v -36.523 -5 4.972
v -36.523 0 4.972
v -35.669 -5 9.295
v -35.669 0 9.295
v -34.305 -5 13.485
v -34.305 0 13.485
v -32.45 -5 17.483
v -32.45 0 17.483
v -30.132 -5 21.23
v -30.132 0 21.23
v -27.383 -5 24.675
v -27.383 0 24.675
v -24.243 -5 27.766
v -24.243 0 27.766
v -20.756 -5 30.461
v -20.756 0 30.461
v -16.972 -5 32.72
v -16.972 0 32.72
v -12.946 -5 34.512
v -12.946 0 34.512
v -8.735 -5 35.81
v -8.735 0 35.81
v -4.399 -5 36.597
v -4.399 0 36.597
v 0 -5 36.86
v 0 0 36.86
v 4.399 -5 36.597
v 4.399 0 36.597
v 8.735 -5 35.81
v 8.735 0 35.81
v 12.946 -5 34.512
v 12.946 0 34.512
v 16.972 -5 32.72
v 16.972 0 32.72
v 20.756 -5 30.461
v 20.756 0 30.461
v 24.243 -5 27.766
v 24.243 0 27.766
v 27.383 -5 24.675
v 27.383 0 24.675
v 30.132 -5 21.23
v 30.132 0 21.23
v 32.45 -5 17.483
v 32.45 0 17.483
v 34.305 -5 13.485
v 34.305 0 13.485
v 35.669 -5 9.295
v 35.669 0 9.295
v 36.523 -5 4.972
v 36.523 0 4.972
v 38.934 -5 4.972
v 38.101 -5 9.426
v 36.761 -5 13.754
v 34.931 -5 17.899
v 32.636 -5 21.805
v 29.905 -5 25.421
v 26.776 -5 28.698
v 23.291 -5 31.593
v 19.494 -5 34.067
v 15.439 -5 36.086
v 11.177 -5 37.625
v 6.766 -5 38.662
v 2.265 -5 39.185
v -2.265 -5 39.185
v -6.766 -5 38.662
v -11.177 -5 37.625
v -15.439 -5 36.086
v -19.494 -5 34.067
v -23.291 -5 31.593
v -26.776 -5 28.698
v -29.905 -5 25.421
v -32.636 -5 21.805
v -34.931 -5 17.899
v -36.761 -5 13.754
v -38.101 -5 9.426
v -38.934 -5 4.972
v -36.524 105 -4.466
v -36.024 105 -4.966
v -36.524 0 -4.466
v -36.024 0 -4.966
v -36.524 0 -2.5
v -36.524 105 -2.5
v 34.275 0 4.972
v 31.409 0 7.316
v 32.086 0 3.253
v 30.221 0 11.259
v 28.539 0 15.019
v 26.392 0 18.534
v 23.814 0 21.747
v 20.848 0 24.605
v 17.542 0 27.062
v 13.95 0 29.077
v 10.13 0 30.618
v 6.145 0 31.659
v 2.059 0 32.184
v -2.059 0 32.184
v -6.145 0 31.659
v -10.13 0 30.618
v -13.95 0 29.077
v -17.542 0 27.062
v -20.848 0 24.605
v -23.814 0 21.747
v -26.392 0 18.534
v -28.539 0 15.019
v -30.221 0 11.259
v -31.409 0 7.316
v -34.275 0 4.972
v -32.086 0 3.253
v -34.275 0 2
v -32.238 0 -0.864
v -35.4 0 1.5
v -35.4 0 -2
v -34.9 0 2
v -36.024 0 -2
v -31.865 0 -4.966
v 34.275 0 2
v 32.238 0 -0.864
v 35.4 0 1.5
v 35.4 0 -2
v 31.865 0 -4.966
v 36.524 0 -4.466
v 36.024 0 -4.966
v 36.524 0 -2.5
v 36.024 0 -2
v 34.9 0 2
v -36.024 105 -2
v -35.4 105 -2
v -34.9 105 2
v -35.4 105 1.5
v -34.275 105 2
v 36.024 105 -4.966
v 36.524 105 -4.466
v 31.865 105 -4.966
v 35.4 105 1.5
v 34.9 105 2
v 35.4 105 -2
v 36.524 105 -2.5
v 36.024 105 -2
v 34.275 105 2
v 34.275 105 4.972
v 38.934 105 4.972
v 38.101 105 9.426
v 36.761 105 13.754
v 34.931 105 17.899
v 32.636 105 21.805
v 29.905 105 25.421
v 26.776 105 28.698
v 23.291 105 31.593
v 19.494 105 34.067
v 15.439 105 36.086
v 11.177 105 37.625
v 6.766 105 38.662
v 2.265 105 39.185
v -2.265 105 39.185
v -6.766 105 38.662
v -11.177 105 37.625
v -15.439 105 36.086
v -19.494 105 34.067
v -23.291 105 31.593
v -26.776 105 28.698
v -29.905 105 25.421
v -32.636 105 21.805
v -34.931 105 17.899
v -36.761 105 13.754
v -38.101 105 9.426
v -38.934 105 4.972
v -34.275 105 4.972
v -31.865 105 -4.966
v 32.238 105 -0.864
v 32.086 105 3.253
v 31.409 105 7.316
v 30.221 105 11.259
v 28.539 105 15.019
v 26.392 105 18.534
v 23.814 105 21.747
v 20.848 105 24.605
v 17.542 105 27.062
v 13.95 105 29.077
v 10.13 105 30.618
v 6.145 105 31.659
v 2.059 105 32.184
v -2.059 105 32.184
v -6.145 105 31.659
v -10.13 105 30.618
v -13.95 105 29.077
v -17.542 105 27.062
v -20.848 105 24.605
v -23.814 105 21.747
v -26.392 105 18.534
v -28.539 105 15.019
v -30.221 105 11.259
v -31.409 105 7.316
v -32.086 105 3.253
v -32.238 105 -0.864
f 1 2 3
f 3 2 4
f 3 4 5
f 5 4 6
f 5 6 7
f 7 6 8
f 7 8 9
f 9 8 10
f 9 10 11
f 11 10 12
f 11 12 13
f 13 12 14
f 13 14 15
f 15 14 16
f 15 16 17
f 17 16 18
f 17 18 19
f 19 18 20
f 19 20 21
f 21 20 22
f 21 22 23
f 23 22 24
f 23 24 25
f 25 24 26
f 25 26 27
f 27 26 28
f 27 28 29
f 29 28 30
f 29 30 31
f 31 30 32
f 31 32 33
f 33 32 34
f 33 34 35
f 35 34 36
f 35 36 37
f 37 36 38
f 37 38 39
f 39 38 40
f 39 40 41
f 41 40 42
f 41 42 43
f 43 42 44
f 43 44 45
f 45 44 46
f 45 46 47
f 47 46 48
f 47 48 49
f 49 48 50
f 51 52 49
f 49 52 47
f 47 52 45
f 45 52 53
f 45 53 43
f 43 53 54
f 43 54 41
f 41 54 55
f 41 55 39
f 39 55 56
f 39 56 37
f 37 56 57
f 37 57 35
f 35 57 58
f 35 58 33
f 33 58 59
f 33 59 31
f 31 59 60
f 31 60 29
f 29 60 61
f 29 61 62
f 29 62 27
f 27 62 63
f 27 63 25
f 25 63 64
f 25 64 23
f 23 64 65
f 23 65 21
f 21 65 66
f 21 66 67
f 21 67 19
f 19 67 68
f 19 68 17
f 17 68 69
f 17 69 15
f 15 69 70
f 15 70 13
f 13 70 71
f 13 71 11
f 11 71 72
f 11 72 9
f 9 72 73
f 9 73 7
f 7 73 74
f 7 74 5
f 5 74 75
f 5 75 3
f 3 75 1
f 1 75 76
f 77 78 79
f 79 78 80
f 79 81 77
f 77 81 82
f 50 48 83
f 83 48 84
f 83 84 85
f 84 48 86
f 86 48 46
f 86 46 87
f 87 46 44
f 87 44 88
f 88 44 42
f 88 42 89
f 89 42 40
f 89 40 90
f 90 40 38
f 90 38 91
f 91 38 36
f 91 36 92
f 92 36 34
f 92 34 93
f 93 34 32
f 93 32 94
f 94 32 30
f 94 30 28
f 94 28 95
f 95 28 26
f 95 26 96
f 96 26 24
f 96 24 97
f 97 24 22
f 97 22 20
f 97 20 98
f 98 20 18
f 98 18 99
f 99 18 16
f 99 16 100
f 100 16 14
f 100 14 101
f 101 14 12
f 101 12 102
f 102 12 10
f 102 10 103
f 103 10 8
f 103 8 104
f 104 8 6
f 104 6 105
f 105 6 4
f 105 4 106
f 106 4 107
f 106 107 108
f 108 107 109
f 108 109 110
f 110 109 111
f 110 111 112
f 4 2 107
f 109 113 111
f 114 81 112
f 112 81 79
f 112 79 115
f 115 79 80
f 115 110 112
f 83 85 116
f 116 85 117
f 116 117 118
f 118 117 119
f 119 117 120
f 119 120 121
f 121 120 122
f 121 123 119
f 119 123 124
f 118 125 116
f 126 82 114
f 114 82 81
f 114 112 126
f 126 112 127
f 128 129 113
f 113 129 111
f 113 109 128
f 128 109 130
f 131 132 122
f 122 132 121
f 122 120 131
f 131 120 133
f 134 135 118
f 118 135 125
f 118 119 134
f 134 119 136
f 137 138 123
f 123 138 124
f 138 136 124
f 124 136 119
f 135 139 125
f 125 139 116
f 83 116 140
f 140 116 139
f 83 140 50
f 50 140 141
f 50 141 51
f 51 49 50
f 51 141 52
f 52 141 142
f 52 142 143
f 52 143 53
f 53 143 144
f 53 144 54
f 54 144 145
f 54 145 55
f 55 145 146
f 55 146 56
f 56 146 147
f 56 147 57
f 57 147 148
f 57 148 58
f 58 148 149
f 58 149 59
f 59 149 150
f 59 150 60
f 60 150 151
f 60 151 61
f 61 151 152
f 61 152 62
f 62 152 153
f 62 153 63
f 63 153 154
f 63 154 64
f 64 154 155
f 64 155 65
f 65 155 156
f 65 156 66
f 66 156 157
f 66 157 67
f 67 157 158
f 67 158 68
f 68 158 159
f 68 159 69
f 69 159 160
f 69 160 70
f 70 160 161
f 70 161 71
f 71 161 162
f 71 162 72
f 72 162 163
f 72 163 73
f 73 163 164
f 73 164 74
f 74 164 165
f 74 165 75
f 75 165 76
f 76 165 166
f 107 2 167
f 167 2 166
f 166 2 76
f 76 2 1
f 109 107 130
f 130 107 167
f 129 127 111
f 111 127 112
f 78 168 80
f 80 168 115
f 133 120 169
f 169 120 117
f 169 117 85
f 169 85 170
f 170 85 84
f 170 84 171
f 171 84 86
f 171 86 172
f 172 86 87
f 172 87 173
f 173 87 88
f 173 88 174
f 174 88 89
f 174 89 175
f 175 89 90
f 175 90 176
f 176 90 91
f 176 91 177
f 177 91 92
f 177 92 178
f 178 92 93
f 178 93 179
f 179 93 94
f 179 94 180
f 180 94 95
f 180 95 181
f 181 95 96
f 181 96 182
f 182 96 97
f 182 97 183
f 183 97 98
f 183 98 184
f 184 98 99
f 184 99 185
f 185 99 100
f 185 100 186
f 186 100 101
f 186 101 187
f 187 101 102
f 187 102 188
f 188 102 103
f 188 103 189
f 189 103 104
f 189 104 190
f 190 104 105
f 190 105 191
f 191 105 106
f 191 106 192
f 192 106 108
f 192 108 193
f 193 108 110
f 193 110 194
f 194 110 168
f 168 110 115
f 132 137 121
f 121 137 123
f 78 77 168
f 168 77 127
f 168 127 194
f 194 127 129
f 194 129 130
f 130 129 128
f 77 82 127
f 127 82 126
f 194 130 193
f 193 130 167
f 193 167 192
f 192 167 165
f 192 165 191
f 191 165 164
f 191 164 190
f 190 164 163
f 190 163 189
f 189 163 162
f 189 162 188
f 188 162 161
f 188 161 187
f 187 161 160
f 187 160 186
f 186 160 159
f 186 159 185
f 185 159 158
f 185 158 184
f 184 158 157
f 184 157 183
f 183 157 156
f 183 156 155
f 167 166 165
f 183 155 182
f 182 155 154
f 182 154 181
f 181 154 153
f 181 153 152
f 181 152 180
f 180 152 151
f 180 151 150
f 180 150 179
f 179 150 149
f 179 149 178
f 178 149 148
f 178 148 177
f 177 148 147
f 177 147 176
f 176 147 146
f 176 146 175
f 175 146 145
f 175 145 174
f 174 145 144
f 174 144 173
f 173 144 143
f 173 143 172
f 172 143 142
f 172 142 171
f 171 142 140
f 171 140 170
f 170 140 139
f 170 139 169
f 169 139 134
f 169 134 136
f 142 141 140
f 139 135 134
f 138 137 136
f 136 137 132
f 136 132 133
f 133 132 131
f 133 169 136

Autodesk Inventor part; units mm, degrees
ref_plane "YZ Plane" through (0, 0, 0) normal (1, 0, 0) x (0, 1, 0)
ref_plane "XZ Plane" through (0, 0, 0) normal (0, 1, 0) x (-1, 0, 0)
ref_plane "XY Plane" through (0, 0, 0) normal (0, 0, 1) x (1, 0, 0)
sketch "Sketch1" plane through (0, 0, 0) normal (0, 1, 0) x (-1, 0, 0)
  arc A0 (31.8654, -4.9656) -> (-31.8654, -4.9656) centre (0, 0) ccw
  arc A1 (38.9338, 4.9718) -> (-38.9338, 4.9718) centre (0, 0) ccw
  line L0 (39.25, 0) -> (-39.25, 0)
  line L1 (35.3996, 0) -> (35.3996, 2)
  line L2 (35.3996, 2) -> (35.3996, -2)
  line L3 (36.0047, -4.9656) -> (31.8654, -4.9656)
  line L4 (34.7945, 4.9718) -> (38.9338, 4.9718)
  line L5 (35.3996, 2) -> (34.2752, 2)
  line L6 (34.2752, 2) -> (34.2752, 4.9718)
  line L7 (34.2752, 4.9718) -> (34.7945, 4.9718)
  line L8 (36.0047, -4.9656) -> (36.5241, -4.9656)
  line L9 (36.5241, -4.9656) -> (36.5241, -2)
  line L10 (36.5241, -2) -> (35.3996, -2)
  line L11 (0, 0) -> (0, -17)
  line L12 (-35.3996, 0) -> (-35.3996, 2)
  line L13 (-35.3996, 2) -> (-35.3996, -2)
  line L14 (-36.0047, -4.9656) -> (-31.8654, -4.9656)
  line L15 (-34.7945, 4.9718) -> (-38.9338, 4.9718)
  line L16 (-35.3996, 2) -> (-34.2752, 2)
  line L17 (-34.2752, 2) -> (-34.2752, 4.9718)
  line L18 (-34.2752, 4.9718) -> (-34.7945, 4.9718)
  line L19 (-36.0047, -4.9656) -> (-36.5241, -4.9656)
  line L20 (-36.5241, -4.9656) -> (-36.5241, -2)
  line L21 (-36.5241, -2) -> (-35.3996, -2)
  arc A2 (36.524, -4.9656) -> (36.5241, -4.9651) centre (0, 0) ccw
  arc A3 (36.5232, 4.9718) -> (-36.5232, 4.9718) centre (0, 0) ccw
  arc A4 (-36.5241, -4.9651) -> (-36.524, -4.9656) centre (0, 0) ccw
  dimension "d0" = 64.5
  dimension "d1" = 7
extrude "Extrusion1" add sketch "Sketch1" along normal blind 105 contours A0 L0 L2 L10 L9 L8 L3 | A0 L0 L12 L16 L17 L18 L15 A2 L4 L7 L6 L5 L1 | A0 L14 L19 L20 L21 L13 L0 | A2 L15 A1 L4
chamfer "Chamfer1" distance 0.5 angle 45 6 edges at (36.5241, 52.5, -2) (35.3996, 52.5, 2) (36.5241, 52.5, -4.9656) (-35.3996, 52.5, 2) (-36.5241, 52.5, -2) (-36.5241, 52.5, -4.9656)
extrude "Extrusion2" add sketch "Sketch1" against normal blind 5 contours A2 L15 A1 L4
properties part number "cyl inner"
